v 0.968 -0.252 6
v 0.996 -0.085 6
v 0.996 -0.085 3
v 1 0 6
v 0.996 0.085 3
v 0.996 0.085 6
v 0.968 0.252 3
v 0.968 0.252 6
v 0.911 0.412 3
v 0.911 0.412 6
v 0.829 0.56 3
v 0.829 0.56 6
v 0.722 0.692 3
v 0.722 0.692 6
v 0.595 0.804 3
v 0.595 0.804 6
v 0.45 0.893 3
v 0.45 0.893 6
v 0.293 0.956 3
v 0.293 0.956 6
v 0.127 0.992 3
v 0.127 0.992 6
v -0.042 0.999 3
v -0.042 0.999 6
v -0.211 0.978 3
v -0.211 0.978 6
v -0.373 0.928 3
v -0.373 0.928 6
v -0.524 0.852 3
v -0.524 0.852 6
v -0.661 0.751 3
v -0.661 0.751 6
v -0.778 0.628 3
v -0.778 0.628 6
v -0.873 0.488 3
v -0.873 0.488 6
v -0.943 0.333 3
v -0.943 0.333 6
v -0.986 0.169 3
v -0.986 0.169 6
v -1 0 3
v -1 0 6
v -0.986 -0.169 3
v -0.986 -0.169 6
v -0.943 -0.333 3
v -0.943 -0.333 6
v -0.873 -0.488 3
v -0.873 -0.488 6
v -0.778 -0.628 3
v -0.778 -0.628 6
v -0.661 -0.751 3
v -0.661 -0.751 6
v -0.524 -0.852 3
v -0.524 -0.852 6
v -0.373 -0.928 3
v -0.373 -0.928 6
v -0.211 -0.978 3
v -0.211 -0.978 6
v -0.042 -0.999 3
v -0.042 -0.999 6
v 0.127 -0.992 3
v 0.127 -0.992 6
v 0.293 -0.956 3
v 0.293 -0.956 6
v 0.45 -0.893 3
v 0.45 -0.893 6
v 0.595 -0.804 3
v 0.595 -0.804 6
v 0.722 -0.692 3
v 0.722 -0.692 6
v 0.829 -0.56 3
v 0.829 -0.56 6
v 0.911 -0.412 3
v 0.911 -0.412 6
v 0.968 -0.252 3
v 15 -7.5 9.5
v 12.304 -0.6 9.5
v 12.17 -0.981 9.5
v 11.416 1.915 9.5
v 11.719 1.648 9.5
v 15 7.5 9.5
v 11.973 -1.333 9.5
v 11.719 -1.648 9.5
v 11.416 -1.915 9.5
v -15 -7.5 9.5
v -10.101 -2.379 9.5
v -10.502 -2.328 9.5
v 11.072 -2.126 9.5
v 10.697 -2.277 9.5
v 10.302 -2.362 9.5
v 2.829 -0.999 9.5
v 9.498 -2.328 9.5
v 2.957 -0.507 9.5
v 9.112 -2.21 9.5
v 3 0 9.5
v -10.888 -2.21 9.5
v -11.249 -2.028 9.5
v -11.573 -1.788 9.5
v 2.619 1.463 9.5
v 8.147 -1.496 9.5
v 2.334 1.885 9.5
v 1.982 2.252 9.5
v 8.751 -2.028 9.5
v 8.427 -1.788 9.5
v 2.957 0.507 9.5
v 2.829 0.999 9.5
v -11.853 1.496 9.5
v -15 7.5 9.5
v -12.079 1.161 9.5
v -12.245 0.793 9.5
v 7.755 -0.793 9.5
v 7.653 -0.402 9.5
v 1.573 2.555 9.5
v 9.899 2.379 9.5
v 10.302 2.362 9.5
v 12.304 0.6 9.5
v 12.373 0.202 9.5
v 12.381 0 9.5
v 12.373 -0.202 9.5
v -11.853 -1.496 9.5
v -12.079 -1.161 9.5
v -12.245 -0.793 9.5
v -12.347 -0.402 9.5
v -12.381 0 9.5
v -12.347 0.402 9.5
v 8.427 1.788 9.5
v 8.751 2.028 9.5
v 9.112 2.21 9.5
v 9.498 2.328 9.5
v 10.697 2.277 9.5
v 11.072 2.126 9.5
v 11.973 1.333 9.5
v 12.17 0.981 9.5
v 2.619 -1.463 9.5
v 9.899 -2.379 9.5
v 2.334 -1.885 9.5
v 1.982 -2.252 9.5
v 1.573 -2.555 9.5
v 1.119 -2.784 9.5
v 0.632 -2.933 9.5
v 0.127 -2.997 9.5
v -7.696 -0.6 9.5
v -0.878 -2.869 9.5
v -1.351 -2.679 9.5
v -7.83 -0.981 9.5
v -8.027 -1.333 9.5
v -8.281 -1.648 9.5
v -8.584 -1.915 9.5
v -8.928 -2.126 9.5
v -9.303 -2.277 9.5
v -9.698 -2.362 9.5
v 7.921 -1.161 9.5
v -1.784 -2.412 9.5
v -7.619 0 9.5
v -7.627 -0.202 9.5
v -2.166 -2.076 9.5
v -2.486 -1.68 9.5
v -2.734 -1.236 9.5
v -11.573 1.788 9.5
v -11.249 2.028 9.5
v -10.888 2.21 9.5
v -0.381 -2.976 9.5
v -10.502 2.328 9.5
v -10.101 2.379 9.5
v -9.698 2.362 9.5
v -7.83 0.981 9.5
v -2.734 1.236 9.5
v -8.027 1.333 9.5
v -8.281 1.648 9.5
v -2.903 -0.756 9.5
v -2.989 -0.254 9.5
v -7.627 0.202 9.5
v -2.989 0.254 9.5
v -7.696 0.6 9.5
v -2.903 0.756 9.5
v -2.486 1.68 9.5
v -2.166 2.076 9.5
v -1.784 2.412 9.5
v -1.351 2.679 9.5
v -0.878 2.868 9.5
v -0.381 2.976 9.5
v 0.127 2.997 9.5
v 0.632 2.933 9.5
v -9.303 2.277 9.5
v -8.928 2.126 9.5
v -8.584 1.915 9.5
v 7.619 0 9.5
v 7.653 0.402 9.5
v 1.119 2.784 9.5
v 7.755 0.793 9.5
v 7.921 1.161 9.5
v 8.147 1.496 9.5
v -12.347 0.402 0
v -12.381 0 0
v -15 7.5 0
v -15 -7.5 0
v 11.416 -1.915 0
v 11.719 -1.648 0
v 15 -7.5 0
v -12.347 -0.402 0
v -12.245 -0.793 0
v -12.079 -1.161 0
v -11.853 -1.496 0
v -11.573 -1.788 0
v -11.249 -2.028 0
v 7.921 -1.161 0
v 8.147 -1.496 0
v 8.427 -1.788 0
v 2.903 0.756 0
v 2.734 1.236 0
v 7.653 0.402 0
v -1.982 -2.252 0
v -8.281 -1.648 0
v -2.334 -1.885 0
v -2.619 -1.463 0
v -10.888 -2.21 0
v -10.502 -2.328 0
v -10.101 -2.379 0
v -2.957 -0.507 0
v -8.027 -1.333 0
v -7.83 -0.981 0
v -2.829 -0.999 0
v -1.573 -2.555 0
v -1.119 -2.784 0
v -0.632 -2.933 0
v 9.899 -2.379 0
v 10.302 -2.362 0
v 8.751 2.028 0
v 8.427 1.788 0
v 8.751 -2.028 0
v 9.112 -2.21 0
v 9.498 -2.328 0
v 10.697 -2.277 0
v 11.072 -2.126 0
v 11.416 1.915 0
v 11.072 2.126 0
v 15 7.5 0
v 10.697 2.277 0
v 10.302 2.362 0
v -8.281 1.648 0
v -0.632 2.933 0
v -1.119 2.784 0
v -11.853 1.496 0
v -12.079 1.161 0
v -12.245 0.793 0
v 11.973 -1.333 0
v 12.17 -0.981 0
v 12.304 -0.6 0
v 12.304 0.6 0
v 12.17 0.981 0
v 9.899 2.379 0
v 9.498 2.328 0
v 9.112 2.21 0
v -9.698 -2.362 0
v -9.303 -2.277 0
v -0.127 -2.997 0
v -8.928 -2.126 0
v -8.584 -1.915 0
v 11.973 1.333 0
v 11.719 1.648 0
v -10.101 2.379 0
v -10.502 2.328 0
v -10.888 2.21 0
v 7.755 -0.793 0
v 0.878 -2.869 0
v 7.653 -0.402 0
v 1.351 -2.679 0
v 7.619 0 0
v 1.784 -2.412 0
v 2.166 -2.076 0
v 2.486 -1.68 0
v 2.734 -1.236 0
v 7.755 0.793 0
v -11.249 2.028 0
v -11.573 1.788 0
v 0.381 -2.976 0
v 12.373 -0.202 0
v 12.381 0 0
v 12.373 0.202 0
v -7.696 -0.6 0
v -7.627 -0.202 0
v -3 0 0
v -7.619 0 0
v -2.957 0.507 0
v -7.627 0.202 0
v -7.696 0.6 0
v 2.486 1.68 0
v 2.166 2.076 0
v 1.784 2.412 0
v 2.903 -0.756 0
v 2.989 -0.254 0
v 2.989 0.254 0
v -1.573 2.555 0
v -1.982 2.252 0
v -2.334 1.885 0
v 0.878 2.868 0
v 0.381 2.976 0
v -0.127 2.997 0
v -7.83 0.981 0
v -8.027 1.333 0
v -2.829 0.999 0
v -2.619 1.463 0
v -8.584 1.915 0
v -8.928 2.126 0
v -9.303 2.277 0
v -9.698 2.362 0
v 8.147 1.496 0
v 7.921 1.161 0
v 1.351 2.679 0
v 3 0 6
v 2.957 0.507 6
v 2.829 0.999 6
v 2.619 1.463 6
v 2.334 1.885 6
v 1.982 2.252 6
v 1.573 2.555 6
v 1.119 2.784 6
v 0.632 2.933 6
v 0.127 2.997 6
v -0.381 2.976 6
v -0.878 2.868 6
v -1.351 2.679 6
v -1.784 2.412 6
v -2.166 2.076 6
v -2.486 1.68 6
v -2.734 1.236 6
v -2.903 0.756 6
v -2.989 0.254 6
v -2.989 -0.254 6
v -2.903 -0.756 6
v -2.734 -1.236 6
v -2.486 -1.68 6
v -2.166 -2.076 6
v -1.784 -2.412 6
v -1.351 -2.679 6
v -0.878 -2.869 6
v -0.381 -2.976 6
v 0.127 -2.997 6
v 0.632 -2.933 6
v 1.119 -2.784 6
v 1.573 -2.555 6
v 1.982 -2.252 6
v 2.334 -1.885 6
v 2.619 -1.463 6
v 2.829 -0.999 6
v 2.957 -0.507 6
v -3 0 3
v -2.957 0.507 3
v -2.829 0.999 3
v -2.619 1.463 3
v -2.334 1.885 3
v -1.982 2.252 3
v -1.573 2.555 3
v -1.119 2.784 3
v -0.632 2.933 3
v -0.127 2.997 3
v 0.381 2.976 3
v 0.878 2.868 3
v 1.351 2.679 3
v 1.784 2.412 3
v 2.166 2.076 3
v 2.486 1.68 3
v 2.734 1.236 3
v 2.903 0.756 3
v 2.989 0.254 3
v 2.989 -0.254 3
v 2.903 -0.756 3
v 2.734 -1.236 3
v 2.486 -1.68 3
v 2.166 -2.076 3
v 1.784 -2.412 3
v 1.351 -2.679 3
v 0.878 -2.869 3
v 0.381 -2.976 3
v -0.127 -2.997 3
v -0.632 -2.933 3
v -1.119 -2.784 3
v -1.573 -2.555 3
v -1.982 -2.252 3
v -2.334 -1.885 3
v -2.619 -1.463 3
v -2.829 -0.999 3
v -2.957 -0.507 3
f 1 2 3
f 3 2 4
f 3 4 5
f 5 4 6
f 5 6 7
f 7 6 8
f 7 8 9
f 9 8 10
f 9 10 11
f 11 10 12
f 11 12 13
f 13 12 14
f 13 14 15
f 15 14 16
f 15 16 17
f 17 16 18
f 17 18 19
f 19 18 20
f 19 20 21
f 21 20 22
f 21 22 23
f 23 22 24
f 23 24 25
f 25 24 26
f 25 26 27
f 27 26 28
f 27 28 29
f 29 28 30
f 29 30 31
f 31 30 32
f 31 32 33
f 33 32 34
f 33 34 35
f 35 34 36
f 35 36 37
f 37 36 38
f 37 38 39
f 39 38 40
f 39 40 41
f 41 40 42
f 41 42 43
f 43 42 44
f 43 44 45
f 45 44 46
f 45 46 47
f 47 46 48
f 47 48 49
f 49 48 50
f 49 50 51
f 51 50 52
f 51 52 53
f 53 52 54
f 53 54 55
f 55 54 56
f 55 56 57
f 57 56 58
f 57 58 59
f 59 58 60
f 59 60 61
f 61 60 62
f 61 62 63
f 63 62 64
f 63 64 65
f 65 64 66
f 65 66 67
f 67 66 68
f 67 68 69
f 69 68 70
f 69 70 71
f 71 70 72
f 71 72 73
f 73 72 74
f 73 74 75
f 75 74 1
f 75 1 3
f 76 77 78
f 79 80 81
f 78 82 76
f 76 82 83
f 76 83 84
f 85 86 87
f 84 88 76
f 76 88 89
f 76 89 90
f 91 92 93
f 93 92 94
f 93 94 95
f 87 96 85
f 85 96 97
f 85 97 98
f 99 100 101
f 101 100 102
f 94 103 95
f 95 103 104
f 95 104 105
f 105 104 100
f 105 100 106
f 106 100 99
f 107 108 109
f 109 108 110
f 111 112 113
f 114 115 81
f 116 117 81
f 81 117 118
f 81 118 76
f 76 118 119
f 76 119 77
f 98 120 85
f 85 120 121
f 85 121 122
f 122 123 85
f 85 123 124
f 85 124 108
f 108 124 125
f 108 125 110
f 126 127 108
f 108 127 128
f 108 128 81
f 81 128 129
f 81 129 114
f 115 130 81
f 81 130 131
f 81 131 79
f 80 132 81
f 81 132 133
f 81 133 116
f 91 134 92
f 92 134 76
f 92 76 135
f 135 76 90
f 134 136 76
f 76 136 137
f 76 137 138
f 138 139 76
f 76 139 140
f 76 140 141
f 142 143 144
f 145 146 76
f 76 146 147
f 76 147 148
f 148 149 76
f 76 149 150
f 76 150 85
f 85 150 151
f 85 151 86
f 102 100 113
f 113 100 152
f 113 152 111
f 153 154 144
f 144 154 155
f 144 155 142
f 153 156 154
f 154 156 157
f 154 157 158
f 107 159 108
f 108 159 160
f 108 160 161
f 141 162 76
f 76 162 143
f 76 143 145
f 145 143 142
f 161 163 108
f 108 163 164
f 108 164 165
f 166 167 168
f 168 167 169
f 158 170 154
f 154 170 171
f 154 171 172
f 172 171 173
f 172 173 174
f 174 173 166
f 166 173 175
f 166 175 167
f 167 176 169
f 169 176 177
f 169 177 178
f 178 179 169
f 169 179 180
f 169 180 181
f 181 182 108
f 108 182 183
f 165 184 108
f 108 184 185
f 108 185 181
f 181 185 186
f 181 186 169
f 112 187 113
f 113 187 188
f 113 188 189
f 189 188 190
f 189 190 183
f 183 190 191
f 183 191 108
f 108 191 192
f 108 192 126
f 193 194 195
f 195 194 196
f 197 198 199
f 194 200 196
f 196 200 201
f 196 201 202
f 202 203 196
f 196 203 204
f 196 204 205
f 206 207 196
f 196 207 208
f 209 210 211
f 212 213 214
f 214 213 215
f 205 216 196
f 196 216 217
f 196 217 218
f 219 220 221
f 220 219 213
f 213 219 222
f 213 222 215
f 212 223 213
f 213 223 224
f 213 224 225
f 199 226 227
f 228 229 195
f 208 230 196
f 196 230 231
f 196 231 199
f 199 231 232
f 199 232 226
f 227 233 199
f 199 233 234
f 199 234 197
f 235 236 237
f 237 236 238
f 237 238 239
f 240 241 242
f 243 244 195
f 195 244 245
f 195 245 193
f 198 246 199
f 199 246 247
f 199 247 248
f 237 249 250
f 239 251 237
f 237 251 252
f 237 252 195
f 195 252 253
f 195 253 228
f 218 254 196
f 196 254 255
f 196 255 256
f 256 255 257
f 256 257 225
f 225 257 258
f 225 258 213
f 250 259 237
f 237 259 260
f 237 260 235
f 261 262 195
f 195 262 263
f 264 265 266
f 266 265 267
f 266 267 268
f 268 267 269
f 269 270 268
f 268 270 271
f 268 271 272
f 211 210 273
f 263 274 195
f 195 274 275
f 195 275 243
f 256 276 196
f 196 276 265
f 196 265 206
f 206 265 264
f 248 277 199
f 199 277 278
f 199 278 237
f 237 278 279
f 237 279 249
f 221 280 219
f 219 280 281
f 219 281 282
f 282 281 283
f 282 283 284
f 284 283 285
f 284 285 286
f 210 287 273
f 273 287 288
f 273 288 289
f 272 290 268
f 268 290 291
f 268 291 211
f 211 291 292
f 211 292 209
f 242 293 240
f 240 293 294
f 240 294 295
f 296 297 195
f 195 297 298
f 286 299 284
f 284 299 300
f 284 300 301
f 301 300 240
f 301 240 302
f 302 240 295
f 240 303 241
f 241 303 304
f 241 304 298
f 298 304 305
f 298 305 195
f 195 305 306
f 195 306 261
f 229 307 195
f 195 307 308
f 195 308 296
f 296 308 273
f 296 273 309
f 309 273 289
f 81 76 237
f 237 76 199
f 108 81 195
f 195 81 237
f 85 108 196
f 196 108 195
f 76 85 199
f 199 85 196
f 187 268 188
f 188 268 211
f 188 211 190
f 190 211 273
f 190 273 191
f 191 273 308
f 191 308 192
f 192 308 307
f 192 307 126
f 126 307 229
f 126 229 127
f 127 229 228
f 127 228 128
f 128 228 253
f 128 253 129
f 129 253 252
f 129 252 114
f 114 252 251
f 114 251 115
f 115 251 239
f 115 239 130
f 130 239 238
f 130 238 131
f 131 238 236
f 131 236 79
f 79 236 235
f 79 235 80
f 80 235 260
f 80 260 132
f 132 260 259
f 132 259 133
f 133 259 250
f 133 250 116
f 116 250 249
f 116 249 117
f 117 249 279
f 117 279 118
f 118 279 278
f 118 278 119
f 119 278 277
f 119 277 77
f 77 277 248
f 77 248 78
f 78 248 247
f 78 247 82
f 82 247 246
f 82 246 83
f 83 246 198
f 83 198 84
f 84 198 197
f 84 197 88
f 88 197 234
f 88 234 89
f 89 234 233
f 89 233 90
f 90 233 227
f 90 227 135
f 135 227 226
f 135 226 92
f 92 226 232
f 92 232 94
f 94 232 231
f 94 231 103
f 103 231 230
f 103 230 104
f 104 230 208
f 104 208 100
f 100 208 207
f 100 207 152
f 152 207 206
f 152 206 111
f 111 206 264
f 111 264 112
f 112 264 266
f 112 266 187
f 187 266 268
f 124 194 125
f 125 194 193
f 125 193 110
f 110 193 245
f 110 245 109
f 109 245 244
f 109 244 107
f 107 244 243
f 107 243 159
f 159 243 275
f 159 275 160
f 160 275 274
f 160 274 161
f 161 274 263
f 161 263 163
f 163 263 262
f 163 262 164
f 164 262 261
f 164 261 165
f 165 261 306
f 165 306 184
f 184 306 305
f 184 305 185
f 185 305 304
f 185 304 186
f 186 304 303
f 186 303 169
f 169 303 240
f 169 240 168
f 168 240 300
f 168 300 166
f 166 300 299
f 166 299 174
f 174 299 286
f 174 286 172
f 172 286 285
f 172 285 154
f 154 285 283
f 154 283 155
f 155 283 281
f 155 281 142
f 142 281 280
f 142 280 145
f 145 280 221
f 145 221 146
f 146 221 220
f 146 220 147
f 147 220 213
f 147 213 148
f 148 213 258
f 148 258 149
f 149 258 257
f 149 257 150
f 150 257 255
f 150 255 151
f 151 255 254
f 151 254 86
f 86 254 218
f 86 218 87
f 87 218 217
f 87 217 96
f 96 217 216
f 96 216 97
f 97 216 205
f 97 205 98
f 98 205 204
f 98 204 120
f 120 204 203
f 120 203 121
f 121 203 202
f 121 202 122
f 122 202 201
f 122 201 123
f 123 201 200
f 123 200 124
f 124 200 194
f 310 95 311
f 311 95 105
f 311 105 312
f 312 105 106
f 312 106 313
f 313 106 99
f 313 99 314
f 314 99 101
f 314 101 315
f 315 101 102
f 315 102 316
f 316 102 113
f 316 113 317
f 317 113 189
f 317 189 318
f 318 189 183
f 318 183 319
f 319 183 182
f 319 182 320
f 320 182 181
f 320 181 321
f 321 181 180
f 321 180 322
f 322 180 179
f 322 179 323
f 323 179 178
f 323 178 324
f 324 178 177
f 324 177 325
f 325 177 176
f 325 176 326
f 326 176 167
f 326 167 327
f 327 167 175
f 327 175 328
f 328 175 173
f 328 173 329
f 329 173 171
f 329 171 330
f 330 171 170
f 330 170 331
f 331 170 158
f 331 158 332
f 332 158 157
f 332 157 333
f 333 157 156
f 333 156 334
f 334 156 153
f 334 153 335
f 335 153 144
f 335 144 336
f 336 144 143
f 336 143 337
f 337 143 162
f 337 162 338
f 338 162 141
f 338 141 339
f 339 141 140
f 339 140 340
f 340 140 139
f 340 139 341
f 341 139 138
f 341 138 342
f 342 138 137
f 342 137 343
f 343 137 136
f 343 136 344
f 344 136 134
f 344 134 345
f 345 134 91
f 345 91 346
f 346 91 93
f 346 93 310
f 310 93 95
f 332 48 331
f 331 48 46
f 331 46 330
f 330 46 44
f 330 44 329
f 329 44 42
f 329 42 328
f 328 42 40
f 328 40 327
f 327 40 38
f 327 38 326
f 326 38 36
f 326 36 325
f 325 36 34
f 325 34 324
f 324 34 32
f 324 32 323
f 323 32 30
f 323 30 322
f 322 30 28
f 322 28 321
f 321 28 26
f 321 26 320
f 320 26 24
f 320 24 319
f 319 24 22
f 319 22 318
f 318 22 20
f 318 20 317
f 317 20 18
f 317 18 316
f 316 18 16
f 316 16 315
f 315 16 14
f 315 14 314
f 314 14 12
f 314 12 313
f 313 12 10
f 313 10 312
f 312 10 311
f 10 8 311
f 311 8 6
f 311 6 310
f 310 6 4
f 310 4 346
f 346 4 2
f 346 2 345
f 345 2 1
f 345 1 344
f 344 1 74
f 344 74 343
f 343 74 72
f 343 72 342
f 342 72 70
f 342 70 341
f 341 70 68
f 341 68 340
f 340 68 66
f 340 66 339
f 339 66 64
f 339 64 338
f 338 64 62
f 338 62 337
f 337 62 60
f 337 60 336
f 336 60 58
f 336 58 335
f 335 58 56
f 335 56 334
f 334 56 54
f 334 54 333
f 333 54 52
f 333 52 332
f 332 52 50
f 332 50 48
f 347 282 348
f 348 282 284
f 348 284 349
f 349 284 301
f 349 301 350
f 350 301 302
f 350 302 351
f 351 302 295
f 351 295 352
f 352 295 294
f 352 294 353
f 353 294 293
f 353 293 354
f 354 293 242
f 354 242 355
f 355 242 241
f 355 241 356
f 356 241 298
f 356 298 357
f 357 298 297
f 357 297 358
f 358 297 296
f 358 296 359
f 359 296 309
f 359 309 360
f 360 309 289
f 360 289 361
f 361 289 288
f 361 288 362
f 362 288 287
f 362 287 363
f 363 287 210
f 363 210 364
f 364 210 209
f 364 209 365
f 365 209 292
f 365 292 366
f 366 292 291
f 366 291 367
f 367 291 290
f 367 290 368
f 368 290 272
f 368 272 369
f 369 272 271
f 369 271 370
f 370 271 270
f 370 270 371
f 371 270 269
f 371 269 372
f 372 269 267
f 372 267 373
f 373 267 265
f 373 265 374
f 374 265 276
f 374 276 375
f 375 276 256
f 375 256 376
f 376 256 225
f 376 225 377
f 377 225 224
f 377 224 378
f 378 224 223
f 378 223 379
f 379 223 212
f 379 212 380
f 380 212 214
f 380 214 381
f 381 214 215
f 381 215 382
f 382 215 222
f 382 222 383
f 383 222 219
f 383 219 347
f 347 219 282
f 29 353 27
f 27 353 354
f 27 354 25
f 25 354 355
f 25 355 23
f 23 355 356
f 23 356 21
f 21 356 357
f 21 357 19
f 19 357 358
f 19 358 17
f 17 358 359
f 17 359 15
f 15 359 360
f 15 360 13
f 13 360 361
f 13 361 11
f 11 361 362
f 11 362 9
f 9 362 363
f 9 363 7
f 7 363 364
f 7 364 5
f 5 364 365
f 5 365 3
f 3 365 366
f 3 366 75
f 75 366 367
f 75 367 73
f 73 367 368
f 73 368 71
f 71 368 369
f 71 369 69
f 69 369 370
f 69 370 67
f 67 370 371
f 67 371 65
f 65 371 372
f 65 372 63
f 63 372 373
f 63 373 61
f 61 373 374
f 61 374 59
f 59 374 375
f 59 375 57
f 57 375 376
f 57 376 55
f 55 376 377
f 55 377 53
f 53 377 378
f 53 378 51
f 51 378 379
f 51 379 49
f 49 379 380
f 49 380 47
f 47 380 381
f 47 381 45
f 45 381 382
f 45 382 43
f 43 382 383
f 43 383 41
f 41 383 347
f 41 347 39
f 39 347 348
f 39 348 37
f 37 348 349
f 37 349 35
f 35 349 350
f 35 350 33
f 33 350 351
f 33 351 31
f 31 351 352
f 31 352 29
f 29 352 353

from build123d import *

# Parameters (mm, degrees)
SKETCH1_W           = 30
SKETCH1_H           = 15
SKETCH1_R           = 1
SKETCH1_R_2         = 2.38125
BOSS_EXTRUDE1_DEPTH = 9.5
SKETCH2_R           = 3
CUT_EXTRUDE1_DEPTH  = 3.5
CUT_EXTRUDE2_START  = -3
SKETCH3_R           = 3
CUT_EXTRUDE2_DEPTH  = 3


with BuildPart() as part:
    # Sketch1 → Boss-Extrude1 (new body)
    with BuildSketch(Plane.XY):
        Rectangle(SKETCH1_W, SKETCH1_H)
        Circle(SKETCH1_R, mode=Mode.SUBTRACT)
        with Locations((10, 0)):
            Circle(SKETCH1_R_2, mode=Mode.SUBTRACT)
        with Locations((-10, 0)):
            Circle(SKETCH1_R_2, mode=Mode.SUBTRACT)
    extrude(amount=BOSS_EXTRUDE1_DEPTH)

    # Sketch2 → Cut-Extrude1 (cut)
    with BuildSketch(Plane.XY.offset(9.5)):
        Circle(SKETCH2_R)
    extrude(amount=-CUT_EXTRUDE1_DEPTH, mode=Mode.SUBTRACT)

    # Sketch3 → Cut-Extrude2 (cut)
    with BuildSketch(Plane(origin=(0, 0, 0), x_dir=(-1, 0, 0), z_dir=(0, 0, -1)).offset(CUT_EXTRUDE2_START)):
        with Locations(Location((0, 0, 0), (0, 0, 180))):
            Circle(SKETCH3_R)
    extrude(amount=CUT_EXTRUDE2_DEPTH, mode=Mode.SUBTRACT)


solid = part.part
